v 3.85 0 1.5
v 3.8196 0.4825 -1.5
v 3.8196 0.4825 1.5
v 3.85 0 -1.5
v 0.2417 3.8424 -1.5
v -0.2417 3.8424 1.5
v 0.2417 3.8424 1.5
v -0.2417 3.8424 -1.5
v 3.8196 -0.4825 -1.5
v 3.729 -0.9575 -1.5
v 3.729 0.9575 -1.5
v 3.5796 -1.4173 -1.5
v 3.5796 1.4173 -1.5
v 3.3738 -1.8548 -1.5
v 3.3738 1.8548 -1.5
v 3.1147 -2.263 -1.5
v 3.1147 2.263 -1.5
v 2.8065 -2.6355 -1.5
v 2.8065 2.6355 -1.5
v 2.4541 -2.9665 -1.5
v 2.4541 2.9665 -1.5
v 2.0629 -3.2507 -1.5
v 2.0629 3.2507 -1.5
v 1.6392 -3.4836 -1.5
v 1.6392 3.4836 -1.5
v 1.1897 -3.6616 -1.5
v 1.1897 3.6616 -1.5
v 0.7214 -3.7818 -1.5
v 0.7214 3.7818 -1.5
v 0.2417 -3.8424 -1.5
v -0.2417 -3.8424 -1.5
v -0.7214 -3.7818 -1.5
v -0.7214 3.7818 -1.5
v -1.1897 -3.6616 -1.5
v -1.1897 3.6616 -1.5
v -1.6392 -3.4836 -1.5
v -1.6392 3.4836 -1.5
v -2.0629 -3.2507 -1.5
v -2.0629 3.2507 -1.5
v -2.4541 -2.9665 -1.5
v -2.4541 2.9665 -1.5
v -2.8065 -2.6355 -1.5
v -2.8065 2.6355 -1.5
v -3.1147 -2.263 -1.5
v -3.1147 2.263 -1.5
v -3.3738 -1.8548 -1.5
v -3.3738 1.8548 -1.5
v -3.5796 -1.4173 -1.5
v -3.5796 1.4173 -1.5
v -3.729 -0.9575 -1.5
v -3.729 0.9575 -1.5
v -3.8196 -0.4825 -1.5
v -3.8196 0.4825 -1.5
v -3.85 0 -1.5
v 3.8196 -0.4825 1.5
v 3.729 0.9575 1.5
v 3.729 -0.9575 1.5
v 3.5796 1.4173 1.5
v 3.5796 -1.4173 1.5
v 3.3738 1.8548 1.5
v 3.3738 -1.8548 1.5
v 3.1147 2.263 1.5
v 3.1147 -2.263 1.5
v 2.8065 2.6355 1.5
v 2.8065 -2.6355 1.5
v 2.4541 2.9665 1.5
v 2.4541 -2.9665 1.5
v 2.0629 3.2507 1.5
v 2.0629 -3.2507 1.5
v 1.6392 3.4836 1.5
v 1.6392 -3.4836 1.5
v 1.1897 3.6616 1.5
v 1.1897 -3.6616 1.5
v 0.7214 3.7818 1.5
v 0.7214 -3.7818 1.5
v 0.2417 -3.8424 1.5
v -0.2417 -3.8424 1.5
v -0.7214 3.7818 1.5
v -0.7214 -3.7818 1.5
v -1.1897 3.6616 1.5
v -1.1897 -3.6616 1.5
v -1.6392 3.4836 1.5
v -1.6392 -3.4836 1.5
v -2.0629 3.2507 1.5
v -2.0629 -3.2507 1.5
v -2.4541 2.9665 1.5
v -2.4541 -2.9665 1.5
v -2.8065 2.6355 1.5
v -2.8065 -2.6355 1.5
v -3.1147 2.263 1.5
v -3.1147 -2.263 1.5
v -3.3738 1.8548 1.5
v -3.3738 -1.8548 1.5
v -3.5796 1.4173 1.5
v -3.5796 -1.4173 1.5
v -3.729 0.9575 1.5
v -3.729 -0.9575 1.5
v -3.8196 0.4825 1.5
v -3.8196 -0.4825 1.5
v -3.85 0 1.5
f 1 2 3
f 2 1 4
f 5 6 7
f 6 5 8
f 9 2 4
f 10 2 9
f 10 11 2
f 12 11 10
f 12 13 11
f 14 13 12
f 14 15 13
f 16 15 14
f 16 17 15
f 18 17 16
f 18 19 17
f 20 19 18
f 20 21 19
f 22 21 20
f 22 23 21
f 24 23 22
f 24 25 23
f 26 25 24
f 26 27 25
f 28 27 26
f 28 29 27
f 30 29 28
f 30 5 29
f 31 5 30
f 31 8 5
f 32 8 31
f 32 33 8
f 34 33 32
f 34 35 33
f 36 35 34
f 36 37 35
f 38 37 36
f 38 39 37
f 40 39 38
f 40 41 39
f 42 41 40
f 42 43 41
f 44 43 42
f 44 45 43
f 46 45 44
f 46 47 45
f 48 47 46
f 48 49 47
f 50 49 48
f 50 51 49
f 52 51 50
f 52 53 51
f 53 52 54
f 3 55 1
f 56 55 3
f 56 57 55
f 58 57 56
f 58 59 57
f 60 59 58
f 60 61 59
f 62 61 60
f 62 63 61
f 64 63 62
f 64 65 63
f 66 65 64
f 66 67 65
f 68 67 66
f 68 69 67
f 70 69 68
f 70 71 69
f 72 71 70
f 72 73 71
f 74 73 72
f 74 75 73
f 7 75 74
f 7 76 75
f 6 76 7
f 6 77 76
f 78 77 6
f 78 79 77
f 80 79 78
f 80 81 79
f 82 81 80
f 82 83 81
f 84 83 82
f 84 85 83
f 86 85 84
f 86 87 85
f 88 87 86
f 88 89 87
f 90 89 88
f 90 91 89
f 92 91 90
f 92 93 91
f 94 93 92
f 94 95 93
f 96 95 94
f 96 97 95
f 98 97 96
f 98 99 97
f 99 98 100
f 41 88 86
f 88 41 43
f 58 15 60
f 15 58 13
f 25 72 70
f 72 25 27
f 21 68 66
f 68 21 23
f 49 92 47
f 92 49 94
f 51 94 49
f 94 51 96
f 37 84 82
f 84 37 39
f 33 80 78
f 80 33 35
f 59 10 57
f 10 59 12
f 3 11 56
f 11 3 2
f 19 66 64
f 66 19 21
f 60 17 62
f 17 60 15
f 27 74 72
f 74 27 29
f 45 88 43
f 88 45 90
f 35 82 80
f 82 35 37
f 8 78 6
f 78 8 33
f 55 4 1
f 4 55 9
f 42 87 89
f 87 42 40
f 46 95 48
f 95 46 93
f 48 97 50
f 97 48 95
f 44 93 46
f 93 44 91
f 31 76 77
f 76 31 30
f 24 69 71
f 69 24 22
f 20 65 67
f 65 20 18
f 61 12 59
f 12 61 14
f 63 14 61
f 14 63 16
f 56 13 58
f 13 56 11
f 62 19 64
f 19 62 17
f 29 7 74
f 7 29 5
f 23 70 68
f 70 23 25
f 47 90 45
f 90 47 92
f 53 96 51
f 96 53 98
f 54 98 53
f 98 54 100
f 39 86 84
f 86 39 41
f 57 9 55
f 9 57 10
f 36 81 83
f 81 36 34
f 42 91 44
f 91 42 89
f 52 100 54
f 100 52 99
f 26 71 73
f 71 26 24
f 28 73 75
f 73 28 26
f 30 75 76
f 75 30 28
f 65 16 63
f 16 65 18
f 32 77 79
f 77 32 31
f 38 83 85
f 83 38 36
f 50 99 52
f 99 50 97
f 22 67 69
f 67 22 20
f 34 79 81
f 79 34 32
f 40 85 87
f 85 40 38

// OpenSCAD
$fn = 50;


difference() {
	union() {
		translate(v = [0, 0, -1.5000000000]) {
			cylinder(h = 3, r = 3.8500000000);
		}
	}
	union() {
		translate(v = [0, 0, -100.0000000000]) {
			cylinder(h = 200, r = 0);
		}
	}
}
